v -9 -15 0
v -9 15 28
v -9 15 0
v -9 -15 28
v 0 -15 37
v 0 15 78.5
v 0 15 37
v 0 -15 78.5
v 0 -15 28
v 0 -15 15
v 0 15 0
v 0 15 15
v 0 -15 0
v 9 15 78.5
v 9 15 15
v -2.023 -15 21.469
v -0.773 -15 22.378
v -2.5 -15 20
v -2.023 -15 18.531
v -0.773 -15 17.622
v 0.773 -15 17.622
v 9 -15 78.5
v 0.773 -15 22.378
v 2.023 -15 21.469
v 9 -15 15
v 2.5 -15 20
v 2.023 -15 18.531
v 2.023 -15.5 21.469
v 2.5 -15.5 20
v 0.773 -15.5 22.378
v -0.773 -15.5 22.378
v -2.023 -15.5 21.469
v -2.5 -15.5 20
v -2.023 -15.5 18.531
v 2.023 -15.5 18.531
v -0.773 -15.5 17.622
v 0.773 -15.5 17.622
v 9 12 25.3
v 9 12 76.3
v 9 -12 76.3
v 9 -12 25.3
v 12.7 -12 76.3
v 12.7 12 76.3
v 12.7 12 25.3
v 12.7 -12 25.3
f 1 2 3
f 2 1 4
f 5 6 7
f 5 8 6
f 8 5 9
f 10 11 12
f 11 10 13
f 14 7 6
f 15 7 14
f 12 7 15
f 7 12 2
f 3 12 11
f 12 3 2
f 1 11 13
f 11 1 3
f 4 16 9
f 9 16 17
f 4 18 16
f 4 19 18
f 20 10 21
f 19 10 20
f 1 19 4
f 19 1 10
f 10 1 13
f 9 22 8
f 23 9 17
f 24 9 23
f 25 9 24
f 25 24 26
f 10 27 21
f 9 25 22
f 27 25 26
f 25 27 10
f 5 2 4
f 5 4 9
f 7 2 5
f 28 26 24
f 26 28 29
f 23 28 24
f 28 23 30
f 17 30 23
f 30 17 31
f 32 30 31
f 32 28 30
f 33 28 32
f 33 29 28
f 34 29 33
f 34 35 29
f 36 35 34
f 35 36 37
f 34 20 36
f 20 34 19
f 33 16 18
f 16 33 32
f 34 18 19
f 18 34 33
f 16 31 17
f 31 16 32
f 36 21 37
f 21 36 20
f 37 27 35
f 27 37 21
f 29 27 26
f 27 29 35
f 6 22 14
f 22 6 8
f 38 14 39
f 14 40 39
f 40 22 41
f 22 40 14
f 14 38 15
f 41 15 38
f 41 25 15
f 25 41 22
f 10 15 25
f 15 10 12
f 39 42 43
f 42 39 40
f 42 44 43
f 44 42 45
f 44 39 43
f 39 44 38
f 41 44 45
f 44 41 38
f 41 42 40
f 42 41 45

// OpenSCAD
/** WSG-DSA.scad - simplified 3D model of the Weiss Robotics
 *  tactile sensing finger.
 *
 * 11.05.2017 - created
 *
 * (c) 2017 fnh, hendrich@informatik.uni-hamburg.de
 */


 // dimensions are in millimeters, scale by 0.001 for ROS
 eps = 0.1;
 fn = 10;


 translate( [0,0,0] ) DSA_sensing_finger();


 module DSA_sensing_finger()
 {
   // mounting part that connects to the gripper
   color( [0.5,0.5,0.5] )
     translate( [-9/2, 0, 28/2] )
       cube( size=[9, 30, 28], center=true );

   // prism
   color( [0.5,0.5,0.5] )
     translate( [-9,30/2,28] ) rotate( [0,0,-90] )
       prism( 30, 9, 9 );

   // status LED
   color( [0,0,0.8] )
     translate( [0, -30/2, 20] ) rotate( [90,0,0], $fn=fn )
       cylinder( d=5, h=1, center=true );

   // main finger, finger adapter see Schunk manual page 35
   // "Grundbacke" has h=24, w=30, l=18, thickness=9
   //
   hg = 24-9; // height of finger adapter - height of "grundbacke"
   hh = 78.5 - hg;
   color( [0.5,0.5,0.5] )
     translate( [9/2, 0, hg+hh/2] )
       cube( size=[9, 30, hh], center=true );


   // sensors pad, 6x14 cells of 3.4mm size, outer size 51 x 24 x 3
   dx = 12.7 - 9;
   dy = 24;
   dz = 51;
   color( [0.2,0.2,0.2] )
     translate([9+dx/2, 0, 25.3+dz/2] )
       cube( size=[dx, dy, dz], center=true );
}



 module prism(l, w, h){
       polyhedron(
               points=[[0,0,0], [l,0,0], [l,w,0], [0,w,0], [0,w,h], [l,w,h]],
               faces=[[0,1,2,3],[5,4,3,2],[0,4,5,1],[0,3,4],[5,2,1]]
               );

       }
